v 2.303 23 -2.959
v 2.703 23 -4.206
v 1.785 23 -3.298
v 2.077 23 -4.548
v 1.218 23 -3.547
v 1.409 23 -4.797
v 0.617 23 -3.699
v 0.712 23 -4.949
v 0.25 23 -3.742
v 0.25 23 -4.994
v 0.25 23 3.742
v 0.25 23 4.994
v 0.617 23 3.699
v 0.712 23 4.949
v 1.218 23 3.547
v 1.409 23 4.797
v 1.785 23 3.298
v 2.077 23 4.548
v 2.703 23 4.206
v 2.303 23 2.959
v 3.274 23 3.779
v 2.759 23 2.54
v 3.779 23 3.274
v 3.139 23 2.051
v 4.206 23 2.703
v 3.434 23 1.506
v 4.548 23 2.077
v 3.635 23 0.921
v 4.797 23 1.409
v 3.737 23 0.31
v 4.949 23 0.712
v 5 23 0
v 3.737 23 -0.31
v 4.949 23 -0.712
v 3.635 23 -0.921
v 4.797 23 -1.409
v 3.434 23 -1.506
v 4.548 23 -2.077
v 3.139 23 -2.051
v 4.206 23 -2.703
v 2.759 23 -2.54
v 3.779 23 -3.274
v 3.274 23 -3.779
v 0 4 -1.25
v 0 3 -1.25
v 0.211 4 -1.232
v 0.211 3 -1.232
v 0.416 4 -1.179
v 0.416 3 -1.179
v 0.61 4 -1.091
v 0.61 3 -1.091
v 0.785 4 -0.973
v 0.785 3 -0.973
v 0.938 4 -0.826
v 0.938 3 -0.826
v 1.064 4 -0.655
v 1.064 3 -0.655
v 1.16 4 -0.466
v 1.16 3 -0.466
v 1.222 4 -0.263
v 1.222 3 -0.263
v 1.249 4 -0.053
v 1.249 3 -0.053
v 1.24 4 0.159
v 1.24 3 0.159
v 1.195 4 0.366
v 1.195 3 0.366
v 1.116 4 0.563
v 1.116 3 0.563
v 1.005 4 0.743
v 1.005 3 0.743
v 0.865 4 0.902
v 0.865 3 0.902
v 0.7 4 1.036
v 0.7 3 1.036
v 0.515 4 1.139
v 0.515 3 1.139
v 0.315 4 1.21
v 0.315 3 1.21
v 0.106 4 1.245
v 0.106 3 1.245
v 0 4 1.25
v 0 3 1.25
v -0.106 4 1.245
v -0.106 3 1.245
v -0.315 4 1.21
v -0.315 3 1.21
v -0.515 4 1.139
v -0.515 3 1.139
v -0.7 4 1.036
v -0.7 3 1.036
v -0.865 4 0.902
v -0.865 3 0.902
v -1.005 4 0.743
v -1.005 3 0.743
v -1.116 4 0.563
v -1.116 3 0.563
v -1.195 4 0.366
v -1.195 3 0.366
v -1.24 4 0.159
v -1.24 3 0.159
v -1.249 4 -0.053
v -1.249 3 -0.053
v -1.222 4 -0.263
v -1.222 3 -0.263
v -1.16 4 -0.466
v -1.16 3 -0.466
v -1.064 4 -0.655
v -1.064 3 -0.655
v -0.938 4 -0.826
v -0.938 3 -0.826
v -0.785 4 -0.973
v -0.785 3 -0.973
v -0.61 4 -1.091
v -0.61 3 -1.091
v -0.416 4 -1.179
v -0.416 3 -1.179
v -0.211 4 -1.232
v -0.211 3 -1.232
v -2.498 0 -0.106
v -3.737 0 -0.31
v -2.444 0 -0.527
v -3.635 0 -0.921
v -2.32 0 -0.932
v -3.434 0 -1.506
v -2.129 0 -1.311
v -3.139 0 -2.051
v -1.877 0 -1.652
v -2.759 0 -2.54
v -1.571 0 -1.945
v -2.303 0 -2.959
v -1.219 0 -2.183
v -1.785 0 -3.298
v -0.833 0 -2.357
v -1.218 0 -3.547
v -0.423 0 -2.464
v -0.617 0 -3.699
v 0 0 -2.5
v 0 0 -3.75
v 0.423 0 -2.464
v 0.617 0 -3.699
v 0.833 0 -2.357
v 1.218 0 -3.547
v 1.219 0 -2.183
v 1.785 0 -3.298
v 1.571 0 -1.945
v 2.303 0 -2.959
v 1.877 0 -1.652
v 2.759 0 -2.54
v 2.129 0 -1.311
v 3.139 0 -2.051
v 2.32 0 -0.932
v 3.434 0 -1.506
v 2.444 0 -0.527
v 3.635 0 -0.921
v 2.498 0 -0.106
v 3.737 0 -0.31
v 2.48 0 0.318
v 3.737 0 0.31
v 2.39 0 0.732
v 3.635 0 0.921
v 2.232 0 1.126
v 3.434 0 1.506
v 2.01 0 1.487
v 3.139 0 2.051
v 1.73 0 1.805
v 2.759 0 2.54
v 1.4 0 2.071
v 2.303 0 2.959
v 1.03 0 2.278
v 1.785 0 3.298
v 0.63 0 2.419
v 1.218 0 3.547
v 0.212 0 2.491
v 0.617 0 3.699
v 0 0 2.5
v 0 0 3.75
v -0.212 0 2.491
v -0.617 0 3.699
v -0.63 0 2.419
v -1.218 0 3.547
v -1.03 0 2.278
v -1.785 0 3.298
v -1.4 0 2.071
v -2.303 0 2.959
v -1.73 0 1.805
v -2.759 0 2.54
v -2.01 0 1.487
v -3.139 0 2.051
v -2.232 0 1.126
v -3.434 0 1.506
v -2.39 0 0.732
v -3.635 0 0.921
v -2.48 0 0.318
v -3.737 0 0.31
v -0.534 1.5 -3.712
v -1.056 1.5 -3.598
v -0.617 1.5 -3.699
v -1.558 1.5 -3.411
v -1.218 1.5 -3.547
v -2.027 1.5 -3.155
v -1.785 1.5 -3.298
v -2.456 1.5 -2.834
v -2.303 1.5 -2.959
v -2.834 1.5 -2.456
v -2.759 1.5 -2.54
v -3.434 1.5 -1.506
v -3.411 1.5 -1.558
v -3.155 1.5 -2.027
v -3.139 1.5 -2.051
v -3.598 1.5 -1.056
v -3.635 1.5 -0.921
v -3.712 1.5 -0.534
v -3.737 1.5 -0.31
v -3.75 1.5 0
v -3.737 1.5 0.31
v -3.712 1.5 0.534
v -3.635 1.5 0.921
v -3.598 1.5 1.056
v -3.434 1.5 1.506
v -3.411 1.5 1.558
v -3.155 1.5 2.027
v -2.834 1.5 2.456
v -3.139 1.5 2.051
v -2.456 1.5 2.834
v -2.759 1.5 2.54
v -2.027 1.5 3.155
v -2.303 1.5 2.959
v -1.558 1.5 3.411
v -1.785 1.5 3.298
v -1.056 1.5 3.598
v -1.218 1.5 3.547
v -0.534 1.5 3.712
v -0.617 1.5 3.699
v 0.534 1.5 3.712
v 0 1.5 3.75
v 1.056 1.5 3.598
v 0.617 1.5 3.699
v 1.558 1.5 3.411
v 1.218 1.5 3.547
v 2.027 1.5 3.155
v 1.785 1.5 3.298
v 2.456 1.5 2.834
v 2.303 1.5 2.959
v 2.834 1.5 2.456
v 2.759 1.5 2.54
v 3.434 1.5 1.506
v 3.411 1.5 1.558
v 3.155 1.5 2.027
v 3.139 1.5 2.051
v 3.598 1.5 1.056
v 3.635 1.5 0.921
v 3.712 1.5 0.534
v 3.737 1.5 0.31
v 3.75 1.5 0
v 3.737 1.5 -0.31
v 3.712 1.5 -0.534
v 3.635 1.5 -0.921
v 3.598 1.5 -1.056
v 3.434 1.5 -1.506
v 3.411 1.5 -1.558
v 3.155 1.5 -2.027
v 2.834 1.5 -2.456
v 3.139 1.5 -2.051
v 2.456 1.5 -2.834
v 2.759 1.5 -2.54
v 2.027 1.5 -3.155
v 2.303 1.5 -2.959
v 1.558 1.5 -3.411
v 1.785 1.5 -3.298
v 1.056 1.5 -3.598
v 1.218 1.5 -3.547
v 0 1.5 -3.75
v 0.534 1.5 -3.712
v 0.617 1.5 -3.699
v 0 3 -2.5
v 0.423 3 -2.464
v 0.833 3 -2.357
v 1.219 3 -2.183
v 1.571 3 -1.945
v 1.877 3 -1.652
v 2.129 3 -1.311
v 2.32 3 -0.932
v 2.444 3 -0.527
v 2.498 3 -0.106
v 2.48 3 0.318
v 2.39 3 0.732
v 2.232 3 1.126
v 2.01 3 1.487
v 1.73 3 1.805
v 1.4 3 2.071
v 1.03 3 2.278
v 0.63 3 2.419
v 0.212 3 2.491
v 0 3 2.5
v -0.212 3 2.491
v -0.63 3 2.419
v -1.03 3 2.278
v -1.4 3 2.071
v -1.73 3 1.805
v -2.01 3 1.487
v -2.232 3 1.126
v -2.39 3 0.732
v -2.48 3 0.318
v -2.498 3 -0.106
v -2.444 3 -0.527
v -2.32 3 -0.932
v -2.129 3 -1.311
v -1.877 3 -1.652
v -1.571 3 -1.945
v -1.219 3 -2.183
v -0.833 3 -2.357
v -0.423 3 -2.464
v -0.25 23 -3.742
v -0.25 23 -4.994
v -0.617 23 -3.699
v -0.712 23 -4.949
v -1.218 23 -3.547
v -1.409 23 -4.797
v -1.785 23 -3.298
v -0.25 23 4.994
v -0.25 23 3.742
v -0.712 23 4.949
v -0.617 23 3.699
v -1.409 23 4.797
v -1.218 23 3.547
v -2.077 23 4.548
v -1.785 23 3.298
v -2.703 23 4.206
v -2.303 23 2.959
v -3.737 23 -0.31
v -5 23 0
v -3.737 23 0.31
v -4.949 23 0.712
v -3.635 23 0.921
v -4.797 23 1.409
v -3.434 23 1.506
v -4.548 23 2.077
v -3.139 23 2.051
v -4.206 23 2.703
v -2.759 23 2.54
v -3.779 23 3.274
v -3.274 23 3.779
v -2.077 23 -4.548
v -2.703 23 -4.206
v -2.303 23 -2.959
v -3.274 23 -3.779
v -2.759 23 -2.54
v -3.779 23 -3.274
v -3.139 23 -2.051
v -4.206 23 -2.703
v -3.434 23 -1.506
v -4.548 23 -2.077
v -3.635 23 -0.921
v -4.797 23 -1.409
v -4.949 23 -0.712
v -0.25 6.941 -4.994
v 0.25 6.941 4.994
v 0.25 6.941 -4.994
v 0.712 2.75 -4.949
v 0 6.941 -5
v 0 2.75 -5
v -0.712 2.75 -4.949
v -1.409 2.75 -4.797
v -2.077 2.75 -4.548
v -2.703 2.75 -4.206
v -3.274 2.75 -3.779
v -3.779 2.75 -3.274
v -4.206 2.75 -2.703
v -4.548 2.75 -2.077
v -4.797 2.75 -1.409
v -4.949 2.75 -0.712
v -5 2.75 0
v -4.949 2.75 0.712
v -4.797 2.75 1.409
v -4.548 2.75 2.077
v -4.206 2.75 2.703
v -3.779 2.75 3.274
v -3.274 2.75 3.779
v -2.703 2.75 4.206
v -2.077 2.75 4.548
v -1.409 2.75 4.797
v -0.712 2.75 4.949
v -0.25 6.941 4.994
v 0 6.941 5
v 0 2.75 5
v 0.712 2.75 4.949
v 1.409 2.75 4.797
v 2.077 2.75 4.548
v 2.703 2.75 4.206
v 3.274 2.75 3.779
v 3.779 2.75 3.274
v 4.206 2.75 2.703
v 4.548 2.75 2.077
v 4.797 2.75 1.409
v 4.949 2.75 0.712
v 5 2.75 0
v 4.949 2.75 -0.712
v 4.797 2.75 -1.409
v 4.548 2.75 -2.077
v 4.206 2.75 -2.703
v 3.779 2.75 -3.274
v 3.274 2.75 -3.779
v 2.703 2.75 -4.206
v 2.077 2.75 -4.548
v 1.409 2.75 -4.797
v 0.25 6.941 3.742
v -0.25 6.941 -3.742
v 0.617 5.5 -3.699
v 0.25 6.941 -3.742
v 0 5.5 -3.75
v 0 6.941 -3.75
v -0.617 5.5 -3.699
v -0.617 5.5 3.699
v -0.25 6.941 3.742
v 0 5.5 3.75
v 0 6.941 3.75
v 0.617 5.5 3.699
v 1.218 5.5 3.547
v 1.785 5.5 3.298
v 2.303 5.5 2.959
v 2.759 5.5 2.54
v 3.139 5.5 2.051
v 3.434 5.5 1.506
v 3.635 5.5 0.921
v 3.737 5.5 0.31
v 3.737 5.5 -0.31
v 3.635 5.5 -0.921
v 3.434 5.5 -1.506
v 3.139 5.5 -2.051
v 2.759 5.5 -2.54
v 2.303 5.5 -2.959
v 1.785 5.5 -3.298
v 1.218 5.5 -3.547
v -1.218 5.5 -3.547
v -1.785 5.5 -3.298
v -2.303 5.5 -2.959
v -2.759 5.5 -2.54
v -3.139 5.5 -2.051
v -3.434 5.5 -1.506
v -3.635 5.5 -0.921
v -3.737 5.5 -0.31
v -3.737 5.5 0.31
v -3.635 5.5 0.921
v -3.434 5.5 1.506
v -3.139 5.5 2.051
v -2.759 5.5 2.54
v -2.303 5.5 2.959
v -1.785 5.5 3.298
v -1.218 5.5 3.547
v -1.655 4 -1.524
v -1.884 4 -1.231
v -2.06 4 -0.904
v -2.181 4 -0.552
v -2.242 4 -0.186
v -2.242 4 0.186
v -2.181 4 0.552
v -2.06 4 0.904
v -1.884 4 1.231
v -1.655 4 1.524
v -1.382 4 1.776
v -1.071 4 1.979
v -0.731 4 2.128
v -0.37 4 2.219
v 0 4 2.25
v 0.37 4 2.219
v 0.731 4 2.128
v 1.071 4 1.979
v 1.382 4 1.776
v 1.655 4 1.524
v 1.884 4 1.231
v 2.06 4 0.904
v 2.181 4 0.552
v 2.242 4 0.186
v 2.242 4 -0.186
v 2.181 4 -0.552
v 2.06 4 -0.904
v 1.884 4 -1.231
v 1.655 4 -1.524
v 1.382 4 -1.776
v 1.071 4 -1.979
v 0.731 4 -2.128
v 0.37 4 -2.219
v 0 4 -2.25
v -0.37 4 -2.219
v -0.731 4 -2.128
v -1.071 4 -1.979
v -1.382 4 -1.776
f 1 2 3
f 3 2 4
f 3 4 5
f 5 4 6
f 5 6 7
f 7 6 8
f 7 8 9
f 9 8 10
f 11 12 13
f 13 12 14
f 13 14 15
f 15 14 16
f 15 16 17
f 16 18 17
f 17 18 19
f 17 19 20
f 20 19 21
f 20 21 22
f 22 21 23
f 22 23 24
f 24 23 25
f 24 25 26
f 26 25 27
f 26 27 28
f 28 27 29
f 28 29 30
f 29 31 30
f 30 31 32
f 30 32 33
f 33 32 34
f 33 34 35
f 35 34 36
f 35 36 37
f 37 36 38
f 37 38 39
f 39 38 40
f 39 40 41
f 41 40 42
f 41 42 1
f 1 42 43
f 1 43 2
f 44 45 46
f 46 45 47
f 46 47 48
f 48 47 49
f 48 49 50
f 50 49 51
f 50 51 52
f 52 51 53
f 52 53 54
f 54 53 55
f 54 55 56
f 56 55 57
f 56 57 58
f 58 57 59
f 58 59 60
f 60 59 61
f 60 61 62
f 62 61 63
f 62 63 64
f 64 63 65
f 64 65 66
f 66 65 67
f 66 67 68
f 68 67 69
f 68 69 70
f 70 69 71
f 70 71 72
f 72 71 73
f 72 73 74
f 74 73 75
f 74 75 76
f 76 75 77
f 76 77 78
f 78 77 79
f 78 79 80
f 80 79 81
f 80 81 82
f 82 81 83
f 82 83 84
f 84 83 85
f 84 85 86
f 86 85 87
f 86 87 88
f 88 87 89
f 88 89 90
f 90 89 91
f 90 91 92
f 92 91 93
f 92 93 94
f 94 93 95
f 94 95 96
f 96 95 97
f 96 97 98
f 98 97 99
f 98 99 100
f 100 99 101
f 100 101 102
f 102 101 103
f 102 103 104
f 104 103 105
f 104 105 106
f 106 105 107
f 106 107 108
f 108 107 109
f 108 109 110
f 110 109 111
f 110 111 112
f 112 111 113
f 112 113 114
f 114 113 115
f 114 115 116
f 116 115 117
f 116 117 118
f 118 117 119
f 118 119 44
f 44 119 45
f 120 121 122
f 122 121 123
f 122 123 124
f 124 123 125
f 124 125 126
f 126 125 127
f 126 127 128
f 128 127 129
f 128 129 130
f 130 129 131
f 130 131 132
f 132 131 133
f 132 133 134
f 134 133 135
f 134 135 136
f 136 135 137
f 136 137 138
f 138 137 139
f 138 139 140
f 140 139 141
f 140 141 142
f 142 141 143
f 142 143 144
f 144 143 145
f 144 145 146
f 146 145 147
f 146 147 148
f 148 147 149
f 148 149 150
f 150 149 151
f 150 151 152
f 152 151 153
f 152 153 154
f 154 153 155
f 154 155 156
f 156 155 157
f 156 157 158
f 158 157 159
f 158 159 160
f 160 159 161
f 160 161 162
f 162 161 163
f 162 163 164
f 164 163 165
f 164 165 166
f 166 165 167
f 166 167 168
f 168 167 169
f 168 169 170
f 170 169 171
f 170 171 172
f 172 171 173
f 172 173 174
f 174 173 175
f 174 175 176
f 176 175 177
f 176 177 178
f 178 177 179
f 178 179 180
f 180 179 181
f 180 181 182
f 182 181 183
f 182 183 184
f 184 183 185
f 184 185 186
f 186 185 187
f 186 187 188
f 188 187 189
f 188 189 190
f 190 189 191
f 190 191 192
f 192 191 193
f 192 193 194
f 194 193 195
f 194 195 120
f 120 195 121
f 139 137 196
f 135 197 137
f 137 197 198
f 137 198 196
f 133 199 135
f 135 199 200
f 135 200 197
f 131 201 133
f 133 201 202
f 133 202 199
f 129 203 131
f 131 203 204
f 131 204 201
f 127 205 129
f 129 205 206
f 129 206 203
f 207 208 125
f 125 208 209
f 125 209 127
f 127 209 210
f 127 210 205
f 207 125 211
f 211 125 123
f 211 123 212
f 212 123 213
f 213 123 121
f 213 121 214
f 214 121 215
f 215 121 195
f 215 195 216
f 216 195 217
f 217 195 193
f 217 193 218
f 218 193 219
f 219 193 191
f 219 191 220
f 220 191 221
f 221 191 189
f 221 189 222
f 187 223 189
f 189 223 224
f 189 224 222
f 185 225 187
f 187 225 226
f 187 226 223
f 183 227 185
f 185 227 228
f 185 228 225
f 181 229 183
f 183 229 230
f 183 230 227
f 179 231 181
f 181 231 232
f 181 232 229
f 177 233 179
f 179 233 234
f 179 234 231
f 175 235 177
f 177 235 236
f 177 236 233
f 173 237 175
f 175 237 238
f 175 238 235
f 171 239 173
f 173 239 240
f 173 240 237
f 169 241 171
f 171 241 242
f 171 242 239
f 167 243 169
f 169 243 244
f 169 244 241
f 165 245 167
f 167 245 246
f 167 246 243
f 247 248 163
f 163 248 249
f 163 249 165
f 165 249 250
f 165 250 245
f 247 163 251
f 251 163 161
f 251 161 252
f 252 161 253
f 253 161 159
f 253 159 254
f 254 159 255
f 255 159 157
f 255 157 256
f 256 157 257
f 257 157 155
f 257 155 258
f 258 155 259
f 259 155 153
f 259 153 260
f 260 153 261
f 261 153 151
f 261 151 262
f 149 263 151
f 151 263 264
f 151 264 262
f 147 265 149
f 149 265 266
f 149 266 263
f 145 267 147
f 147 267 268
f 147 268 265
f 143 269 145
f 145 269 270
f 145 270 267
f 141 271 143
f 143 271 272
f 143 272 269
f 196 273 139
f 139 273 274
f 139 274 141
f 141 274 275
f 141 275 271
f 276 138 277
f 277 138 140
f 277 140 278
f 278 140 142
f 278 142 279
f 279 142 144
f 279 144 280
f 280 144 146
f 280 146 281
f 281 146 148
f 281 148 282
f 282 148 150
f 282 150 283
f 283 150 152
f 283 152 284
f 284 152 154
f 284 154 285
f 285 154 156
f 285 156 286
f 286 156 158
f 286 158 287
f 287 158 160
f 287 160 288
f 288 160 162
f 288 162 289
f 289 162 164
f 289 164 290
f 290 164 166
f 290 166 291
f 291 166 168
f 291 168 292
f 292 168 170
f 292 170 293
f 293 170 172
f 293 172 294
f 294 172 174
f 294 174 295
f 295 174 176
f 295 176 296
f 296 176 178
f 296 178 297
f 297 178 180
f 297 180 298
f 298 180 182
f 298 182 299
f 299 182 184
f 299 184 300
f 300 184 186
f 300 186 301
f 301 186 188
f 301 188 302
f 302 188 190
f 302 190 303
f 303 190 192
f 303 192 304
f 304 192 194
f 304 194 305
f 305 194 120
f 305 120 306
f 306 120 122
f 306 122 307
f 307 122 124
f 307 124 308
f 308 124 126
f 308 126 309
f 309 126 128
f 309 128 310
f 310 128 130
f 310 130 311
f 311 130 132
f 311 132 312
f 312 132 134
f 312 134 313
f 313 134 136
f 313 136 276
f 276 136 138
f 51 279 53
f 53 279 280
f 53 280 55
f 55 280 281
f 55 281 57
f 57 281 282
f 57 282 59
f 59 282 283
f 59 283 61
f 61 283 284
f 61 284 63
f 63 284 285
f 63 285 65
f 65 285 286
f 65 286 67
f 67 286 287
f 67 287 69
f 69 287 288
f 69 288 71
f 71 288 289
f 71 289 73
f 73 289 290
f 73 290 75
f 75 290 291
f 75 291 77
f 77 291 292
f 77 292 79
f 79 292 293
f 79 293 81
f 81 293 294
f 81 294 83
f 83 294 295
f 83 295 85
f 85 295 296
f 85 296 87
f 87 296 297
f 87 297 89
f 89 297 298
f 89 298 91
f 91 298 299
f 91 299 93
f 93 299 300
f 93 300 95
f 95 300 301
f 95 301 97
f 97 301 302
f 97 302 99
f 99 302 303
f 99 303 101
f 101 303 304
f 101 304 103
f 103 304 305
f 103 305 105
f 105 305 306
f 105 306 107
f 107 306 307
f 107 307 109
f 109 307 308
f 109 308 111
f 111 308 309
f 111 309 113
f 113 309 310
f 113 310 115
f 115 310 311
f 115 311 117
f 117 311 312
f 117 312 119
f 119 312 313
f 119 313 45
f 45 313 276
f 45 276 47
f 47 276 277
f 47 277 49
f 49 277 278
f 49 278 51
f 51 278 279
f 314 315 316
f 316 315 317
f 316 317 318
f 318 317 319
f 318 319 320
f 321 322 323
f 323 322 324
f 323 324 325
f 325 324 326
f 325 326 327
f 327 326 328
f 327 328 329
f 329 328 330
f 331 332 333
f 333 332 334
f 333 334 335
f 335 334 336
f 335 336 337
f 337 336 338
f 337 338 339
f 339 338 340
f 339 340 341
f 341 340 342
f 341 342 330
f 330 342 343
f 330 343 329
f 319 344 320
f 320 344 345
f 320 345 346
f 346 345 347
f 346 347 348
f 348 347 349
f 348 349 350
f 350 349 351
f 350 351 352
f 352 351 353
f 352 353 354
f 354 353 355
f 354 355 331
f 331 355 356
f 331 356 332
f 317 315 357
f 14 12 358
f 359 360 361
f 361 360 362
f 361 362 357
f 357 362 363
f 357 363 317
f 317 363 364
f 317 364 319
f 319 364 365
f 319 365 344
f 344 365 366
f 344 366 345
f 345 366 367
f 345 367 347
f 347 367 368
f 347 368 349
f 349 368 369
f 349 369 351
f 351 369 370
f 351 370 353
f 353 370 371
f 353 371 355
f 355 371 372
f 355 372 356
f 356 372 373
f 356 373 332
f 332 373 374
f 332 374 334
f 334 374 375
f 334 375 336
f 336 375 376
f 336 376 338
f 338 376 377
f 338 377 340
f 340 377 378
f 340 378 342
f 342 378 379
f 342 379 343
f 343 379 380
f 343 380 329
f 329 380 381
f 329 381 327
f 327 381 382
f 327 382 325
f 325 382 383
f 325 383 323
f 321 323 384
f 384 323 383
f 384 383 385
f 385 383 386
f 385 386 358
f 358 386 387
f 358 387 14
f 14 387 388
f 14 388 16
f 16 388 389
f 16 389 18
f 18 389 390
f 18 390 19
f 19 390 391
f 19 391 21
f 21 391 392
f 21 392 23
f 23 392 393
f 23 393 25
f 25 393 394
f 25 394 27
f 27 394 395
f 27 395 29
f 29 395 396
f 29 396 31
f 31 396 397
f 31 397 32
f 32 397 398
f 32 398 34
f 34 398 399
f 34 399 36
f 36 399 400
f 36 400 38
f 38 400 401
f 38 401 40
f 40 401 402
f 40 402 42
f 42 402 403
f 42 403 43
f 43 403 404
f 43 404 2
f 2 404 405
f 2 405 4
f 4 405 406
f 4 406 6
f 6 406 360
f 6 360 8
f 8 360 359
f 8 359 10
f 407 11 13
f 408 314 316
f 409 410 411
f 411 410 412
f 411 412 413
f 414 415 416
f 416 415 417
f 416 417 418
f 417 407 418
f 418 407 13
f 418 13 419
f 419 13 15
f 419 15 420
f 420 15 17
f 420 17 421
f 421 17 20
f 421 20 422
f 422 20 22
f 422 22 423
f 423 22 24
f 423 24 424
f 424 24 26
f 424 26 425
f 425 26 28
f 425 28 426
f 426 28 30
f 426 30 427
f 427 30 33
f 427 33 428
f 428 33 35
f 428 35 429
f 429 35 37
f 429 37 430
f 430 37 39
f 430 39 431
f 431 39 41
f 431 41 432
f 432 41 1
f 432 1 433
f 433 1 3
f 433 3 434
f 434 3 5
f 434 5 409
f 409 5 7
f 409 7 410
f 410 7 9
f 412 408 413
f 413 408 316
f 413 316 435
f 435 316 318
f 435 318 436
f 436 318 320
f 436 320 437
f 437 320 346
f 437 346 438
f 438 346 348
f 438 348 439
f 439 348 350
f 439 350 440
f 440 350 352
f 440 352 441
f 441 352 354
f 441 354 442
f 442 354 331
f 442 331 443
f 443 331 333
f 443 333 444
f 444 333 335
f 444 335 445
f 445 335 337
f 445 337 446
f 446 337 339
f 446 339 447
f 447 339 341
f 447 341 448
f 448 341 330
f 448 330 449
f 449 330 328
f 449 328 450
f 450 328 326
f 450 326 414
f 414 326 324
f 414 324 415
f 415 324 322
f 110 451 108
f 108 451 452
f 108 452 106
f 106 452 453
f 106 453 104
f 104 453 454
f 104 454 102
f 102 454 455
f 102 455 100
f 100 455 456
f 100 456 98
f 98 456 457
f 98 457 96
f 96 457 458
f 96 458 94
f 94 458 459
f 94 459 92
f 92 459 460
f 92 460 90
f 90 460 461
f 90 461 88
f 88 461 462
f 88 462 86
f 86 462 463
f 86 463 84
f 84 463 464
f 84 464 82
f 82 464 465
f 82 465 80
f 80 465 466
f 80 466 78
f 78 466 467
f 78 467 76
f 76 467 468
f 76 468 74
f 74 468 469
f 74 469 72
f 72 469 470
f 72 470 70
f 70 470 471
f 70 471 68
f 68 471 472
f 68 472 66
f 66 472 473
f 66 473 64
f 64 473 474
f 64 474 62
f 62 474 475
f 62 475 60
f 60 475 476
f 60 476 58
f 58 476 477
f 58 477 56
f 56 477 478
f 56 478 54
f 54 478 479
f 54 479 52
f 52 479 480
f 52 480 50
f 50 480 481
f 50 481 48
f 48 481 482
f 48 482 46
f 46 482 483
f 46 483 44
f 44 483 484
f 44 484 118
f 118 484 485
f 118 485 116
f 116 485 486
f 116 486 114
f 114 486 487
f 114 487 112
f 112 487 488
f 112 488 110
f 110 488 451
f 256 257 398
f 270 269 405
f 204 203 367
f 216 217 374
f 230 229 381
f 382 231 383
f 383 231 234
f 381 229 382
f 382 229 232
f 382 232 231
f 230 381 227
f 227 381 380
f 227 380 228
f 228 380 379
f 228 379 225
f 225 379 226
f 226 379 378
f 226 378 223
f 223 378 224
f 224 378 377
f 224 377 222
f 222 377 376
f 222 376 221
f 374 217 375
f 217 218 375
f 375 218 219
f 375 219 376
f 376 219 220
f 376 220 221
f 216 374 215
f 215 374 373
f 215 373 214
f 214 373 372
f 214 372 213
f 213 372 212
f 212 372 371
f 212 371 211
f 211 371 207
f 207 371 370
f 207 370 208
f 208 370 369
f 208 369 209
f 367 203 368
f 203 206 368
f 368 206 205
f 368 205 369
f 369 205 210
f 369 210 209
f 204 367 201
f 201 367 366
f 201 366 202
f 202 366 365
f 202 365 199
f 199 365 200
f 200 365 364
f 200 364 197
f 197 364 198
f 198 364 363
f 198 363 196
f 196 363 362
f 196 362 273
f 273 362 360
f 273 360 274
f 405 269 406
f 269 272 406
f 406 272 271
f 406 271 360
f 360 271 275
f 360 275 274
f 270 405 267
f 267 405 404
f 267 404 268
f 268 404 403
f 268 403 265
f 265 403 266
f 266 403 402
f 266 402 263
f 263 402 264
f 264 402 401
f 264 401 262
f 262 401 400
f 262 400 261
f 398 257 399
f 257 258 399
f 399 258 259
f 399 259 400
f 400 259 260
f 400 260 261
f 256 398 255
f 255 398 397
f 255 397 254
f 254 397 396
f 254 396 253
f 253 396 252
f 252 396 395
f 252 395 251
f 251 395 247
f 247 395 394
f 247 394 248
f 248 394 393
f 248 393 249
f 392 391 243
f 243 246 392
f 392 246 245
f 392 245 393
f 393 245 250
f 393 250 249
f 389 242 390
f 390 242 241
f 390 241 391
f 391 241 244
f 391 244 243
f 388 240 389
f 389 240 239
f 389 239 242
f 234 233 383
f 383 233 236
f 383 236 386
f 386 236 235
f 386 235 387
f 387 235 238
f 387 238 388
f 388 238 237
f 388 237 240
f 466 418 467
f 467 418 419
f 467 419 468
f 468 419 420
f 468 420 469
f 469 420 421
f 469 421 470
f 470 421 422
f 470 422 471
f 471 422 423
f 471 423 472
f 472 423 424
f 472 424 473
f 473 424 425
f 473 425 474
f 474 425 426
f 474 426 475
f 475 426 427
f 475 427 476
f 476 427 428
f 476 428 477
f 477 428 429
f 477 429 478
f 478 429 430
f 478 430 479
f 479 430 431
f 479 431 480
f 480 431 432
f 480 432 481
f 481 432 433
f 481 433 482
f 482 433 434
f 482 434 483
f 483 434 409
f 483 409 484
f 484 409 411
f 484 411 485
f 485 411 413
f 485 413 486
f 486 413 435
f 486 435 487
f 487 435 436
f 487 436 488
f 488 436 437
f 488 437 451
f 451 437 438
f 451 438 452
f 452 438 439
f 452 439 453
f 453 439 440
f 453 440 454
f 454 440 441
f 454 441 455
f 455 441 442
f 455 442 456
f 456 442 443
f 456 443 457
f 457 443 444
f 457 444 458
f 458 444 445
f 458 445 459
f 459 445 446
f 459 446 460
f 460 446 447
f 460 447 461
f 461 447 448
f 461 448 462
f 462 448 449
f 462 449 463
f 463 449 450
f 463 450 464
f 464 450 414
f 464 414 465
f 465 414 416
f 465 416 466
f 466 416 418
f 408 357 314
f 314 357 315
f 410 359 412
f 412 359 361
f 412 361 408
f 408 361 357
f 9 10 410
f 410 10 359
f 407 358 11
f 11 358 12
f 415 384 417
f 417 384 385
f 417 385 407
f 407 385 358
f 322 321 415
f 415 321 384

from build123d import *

# Parameters (mm, degrees)
SKETCH1_R               = 3.75
SKETCH1_R_2             = 2.5
BOSS_EXTRUDE1_DEPTH     = 3
SKETCH2_R               = 5
SKETCH2_R_2             = 1.25
BOSS_EXTRUDE2_DEPTH     = 20
CUT_EXTRUDE1_START      = -19
SKETCH3_R               = 3.75
CUT_EXTRUDE1_DEPTH      = 19
CHAMFER1_SIZE           = 1.5
CUT_EXTRUDE2_DEPTH      = 25.062418831
CUT_EXTRUDE2_DEPTH_BACK = 25.062418831
SKETCH4_W               = 0.5
SKETCH4_H               = 32.118567902


with BuildPart() as part:
    # Sketch1 → Boss-Extrude1 (new body)
    with BuildSketch(Plane(origin=(0, 0, 0), x_dir=(1, 0, 0), z_dir=(0, 1, 0))):
        with Locations(Location((0, 0, 0), (0, 0, 270))):
            Circle(SKETCH1_R)
        with Locations(Location((0, 0, 0), (0, 0, 270))):
            Circle(SKETCH1_R_2, mode=Mode.SUBTRACT)
    extrude(amount=BOSS_EXTRUDE1_DEPTH)

    # Sketch2 → Boss-Extrude2 (add)
    with BuildSketch(Plane(origin=(0, 3, 0), x_dir=(1, 0, 0), z_dir=(0, 1, 0))):
        with Locations(Location((0, 0, 0), (0, 0, 270))):
            Circle(SKETCH2_R)
        with Locations(Location((0, 0, 0), (0, 0, 270))):
            Circle(SKETCH2_R_2, mode=Mode.SUBTRACT)
    extrude(amount=BOSS_EXTRUDE2_DEPTH)

    # Sketch3 → Cut-Extrude1 (cut)
    with BuildSketch(Plane(origin=(0, 23, 0), x_dir=(1, 0, 0), z_dir=(0, 1, 0)).offset(CUT_EXTRUDE1_START)):
        with Locations(Location((0, 0, 0), (0, 0, 270))):
            Circle(SKETCH3_R)
    extrude(amount=CUT_EXTRUDE1_DEPTH, mode=Mode.SUBTRACT)

    # Chamfer1
    # the kernel refuses this chamfer: 1.5 mm, written as the material it adds along each edge
    with BuildSketch(Plane(origin=(0, 3, 0), x_dir=(0, 0, 1), z_dir=(-1, 0, 0))) as chamfer1_piece_1_section:
        Polygon((3.75 + CHAMFER1_SIZE, 0), (3.75, -CHAMFER1_SIZE), (3.75, 0), align=None)
    chamfer1_piece_1 = revolve(axis=Axis((0, 3, 0), (0, 1, 0)), mode=Mode.PRIVATE)
    chamfer1_piece_1 = chamfer1_piece_1 & Plane(origin=(0, 2.126111001, 0), x_dir=(0, 0, 1), z_dir=(0, -1, 0)) * Cylinder(5, 22, mode=Mode.PRIVATE)
    add(chamfer1_piece_1)
    with BuildSketch(Plane(origin=(0, 4, 0), x_dir=(0, 0, 1), z_dir=(-1, 0, 0))) as chamfer1_piece_2:
        Polygon((3.75, CHAMFER1_SIZE), (3.75 - CHAMFER1_SIZE, 0), (3.75, 0), align=None)
    revolve(axis=Axis((0, 4, 0), (0, 1, 0)))

    # Sketch4 → Cut-Extrude2 (cut, two sides: drawn at the far end of the back side and taken through both)
    with BuildSketch(Plane.XY.offset(-CUT_EXTRUDE2_DEPTH_BACK)):
        with Locations((0, 23)):
            Rectangle(SKETCH4_W, SKETCH4_H)
    extrude(amount=CUT_EXTRUDE2_DEPTH + CUT_EXTRUDE2_DEPTH_BACK, mode=Mode.SUBTRACT)


solid = part.part
